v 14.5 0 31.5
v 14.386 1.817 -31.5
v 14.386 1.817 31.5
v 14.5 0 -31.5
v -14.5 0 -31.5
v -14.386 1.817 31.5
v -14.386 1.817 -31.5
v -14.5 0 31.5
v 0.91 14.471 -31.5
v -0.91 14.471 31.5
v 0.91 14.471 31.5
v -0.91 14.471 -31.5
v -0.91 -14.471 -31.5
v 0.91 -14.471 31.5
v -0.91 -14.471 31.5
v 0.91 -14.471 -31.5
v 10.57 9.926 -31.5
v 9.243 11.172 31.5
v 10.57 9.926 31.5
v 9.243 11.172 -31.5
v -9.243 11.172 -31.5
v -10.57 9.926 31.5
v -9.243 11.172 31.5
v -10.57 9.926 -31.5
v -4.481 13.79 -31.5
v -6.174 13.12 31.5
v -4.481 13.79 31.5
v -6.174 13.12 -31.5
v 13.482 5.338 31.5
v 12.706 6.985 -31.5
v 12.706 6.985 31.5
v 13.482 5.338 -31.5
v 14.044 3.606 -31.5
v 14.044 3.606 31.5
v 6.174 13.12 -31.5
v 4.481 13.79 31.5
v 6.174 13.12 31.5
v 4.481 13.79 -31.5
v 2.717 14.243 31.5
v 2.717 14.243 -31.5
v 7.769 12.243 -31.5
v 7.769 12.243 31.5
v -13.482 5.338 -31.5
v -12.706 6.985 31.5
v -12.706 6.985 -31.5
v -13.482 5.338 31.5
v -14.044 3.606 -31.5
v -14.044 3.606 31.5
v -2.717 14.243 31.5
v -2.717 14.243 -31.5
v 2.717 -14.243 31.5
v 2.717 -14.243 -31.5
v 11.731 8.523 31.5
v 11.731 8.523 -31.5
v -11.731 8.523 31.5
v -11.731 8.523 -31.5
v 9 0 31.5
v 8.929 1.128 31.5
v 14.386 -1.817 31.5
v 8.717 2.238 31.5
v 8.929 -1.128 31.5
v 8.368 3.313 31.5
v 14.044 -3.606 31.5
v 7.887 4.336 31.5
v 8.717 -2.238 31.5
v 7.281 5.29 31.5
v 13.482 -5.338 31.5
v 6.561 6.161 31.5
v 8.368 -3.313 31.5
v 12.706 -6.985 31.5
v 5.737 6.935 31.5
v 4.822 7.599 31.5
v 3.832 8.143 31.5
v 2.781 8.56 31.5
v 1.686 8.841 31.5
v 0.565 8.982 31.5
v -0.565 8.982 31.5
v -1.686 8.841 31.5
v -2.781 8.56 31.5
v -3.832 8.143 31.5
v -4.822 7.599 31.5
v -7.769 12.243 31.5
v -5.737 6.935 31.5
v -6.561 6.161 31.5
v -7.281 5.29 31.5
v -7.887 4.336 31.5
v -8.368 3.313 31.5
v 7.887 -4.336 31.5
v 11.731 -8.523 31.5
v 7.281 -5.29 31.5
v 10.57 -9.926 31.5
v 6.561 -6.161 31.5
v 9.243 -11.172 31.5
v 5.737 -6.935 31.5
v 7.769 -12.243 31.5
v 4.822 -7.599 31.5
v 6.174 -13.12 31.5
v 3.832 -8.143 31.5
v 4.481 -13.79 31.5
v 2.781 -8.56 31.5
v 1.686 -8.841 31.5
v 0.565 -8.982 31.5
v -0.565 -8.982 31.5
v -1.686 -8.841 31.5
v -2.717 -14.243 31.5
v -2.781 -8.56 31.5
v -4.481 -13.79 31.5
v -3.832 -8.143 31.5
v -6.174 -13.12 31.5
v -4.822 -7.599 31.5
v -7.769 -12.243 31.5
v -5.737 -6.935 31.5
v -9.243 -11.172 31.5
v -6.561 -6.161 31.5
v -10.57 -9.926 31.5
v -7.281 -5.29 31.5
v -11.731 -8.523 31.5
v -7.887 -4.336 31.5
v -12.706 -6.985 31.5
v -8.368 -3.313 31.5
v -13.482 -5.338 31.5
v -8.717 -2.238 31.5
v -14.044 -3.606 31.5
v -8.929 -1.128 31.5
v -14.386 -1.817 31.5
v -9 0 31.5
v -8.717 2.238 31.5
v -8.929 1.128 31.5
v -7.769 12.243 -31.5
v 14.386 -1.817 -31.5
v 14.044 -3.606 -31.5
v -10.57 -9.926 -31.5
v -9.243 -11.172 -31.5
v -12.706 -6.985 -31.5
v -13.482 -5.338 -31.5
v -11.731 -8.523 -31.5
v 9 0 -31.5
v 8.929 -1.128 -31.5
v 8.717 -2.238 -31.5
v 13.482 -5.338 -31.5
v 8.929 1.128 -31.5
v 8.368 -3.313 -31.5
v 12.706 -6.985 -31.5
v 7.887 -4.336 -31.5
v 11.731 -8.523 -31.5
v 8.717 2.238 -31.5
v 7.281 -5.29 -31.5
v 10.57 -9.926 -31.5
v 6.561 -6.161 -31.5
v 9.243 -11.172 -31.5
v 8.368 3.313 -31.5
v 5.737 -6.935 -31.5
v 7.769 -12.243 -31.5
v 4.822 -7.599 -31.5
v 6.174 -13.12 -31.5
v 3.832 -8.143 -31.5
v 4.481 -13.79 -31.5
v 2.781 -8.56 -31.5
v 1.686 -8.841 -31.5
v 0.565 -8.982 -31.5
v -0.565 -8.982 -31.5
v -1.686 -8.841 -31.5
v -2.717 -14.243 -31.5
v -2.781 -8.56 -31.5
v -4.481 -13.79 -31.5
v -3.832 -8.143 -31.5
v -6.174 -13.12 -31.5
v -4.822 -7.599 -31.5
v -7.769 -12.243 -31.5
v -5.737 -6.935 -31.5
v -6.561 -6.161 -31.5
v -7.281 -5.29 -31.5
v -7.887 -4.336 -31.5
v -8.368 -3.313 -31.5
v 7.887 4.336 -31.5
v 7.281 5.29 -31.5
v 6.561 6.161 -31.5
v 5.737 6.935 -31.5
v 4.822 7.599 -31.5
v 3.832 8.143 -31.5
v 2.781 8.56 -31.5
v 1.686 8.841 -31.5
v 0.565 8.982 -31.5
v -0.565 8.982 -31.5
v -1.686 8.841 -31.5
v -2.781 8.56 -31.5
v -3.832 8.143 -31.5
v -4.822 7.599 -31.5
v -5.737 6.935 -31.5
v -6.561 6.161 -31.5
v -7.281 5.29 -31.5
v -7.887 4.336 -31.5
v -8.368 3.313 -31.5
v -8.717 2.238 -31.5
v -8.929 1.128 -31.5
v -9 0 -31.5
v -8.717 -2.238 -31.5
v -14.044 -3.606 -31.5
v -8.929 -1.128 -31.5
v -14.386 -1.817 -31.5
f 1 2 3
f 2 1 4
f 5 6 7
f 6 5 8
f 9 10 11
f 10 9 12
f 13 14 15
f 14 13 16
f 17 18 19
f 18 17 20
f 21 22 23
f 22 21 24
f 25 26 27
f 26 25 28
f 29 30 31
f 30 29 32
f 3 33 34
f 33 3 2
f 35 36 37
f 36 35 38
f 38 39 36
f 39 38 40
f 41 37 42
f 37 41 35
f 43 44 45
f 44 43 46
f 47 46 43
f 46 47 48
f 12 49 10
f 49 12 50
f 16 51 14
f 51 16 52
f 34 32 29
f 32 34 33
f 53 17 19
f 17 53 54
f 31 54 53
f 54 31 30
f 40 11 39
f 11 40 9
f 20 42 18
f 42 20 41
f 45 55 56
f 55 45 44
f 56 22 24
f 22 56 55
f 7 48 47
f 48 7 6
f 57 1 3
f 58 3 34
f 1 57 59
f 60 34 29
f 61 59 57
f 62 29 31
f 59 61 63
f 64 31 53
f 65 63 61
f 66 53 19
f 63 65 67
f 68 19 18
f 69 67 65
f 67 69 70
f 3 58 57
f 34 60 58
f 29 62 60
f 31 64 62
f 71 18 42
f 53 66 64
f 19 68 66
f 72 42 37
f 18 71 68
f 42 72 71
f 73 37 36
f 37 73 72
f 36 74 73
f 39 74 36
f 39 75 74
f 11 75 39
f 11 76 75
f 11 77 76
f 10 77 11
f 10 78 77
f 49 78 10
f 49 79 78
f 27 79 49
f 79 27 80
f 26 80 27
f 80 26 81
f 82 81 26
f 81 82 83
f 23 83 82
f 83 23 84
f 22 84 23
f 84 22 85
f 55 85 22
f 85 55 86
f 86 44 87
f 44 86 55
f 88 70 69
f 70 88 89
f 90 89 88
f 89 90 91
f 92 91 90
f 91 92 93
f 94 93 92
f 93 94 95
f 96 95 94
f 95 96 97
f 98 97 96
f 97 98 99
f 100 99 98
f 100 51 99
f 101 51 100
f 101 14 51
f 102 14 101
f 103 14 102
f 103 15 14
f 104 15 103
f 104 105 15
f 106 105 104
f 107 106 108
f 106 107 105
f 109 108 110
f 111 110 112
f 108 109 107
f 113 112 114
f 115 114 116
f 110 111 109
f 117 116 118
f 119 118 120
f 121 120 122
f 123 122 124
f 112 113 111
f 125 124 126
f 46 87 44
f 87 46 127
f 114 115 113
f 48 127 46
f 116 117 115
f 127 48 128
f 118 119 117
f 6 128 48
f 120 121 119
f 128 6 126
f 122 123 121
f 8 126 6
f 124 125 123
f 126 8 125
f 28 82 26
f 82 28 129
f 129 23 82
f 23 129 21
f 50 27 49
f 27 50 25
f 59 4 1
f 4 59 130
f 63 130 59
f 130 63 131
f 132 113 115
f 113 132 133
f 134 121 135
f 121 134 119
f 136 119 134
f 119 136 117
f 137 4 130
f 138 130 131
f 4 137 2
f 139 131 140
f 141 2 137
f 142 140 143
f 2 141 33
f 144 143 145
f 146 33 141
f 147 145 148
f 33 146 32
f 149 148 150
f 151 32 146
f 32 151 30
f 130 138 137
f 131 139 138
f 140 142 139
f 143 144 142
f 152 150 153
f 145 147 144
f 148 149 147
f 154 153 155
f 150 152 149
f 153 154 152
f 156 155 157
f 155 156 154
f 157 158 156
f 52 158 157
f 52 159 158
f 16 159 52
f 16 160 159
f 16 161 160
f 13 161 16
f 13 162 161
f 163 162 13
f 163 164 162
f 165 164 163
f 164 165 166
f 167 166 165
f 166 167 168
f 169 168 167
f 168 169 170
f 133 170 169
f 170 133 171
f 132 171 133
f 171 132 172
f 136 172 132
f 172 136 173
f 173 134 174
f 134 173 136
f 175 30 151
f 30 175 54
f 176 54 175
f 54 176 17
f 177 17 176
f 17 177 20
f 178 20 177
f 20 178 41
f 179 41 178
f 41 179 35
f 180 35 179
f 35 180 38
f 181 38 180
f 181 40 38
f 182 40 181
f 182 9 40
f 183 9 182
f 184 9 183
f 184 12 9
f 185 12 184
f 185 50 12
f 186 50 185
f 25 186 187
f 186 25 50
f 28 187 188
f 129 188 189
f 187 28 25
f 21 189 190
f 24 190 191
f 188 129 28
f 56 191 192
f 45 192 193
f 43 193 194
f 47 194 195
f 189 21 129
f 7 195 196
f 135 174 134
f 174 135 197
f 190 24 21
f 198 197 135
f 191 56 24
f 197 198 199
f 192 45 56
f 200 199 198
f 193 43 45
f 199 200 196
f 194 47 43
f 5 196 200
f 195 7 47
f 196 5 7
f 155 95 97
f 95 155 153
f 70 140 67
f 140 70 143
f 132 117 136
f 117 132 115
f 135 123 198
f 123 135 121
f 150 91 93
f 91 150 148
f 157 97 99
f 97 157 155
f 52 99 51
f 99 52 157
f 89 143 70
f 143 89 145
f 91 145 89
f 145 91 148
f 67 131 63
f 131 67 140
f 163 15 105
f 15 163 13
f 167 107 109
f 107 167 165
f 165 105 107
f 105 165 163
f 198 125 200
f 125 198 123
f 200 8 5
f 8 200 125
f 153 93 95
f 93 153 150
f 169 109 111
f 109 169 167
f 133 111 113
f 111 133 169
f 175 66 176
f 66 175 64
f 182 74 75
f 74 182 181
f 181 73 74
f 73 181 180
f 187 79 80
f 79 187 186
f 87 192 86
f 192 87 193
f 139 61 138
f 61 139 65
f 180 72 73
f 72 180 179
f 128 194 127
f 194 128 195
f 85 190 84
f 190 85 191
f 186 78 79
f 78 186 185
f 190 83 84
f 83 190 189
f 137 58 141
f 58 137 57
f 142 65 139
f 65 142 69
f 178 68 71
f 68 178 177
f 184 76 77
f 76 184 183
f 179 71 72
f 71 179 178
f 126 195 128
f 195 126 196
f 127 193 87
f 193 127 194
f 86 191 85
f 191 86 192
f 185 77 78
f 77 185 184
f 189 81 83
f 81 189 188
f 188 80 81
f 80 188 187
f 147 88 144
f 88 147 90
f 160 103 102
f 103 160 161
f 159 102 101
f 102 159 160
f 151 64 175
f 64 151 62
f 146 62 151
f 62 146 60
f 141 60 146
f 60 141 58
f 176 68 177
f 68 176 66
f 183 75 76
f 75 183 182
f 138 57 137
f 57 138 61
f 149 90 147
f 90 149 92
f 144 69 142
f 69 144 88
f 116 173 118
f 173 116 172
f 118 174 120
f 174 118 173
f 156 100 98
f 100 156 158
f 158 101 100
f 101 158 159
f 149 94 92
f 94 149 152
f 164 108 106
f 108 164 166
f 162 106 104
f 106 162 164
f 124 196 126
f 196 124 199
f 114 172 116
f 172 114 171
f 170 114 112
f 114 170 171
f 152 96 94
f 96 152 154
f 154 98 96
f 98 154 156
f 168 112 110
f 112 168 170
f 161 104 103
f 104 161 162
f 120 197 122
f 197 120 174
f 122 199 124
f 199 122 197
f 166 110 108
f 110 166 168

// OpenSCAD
$fn = 50;


difference() {
	union() {
		translate(v = [0, 0, -31.5000000000]) {
			cylinder(h = 63, r = 14.5000000000);
		}
	}
	union() {
		translate(v = [0, 0, -100.0000000000]) {
			cylinder(h = 200, r = 9);
		}
	}
}
